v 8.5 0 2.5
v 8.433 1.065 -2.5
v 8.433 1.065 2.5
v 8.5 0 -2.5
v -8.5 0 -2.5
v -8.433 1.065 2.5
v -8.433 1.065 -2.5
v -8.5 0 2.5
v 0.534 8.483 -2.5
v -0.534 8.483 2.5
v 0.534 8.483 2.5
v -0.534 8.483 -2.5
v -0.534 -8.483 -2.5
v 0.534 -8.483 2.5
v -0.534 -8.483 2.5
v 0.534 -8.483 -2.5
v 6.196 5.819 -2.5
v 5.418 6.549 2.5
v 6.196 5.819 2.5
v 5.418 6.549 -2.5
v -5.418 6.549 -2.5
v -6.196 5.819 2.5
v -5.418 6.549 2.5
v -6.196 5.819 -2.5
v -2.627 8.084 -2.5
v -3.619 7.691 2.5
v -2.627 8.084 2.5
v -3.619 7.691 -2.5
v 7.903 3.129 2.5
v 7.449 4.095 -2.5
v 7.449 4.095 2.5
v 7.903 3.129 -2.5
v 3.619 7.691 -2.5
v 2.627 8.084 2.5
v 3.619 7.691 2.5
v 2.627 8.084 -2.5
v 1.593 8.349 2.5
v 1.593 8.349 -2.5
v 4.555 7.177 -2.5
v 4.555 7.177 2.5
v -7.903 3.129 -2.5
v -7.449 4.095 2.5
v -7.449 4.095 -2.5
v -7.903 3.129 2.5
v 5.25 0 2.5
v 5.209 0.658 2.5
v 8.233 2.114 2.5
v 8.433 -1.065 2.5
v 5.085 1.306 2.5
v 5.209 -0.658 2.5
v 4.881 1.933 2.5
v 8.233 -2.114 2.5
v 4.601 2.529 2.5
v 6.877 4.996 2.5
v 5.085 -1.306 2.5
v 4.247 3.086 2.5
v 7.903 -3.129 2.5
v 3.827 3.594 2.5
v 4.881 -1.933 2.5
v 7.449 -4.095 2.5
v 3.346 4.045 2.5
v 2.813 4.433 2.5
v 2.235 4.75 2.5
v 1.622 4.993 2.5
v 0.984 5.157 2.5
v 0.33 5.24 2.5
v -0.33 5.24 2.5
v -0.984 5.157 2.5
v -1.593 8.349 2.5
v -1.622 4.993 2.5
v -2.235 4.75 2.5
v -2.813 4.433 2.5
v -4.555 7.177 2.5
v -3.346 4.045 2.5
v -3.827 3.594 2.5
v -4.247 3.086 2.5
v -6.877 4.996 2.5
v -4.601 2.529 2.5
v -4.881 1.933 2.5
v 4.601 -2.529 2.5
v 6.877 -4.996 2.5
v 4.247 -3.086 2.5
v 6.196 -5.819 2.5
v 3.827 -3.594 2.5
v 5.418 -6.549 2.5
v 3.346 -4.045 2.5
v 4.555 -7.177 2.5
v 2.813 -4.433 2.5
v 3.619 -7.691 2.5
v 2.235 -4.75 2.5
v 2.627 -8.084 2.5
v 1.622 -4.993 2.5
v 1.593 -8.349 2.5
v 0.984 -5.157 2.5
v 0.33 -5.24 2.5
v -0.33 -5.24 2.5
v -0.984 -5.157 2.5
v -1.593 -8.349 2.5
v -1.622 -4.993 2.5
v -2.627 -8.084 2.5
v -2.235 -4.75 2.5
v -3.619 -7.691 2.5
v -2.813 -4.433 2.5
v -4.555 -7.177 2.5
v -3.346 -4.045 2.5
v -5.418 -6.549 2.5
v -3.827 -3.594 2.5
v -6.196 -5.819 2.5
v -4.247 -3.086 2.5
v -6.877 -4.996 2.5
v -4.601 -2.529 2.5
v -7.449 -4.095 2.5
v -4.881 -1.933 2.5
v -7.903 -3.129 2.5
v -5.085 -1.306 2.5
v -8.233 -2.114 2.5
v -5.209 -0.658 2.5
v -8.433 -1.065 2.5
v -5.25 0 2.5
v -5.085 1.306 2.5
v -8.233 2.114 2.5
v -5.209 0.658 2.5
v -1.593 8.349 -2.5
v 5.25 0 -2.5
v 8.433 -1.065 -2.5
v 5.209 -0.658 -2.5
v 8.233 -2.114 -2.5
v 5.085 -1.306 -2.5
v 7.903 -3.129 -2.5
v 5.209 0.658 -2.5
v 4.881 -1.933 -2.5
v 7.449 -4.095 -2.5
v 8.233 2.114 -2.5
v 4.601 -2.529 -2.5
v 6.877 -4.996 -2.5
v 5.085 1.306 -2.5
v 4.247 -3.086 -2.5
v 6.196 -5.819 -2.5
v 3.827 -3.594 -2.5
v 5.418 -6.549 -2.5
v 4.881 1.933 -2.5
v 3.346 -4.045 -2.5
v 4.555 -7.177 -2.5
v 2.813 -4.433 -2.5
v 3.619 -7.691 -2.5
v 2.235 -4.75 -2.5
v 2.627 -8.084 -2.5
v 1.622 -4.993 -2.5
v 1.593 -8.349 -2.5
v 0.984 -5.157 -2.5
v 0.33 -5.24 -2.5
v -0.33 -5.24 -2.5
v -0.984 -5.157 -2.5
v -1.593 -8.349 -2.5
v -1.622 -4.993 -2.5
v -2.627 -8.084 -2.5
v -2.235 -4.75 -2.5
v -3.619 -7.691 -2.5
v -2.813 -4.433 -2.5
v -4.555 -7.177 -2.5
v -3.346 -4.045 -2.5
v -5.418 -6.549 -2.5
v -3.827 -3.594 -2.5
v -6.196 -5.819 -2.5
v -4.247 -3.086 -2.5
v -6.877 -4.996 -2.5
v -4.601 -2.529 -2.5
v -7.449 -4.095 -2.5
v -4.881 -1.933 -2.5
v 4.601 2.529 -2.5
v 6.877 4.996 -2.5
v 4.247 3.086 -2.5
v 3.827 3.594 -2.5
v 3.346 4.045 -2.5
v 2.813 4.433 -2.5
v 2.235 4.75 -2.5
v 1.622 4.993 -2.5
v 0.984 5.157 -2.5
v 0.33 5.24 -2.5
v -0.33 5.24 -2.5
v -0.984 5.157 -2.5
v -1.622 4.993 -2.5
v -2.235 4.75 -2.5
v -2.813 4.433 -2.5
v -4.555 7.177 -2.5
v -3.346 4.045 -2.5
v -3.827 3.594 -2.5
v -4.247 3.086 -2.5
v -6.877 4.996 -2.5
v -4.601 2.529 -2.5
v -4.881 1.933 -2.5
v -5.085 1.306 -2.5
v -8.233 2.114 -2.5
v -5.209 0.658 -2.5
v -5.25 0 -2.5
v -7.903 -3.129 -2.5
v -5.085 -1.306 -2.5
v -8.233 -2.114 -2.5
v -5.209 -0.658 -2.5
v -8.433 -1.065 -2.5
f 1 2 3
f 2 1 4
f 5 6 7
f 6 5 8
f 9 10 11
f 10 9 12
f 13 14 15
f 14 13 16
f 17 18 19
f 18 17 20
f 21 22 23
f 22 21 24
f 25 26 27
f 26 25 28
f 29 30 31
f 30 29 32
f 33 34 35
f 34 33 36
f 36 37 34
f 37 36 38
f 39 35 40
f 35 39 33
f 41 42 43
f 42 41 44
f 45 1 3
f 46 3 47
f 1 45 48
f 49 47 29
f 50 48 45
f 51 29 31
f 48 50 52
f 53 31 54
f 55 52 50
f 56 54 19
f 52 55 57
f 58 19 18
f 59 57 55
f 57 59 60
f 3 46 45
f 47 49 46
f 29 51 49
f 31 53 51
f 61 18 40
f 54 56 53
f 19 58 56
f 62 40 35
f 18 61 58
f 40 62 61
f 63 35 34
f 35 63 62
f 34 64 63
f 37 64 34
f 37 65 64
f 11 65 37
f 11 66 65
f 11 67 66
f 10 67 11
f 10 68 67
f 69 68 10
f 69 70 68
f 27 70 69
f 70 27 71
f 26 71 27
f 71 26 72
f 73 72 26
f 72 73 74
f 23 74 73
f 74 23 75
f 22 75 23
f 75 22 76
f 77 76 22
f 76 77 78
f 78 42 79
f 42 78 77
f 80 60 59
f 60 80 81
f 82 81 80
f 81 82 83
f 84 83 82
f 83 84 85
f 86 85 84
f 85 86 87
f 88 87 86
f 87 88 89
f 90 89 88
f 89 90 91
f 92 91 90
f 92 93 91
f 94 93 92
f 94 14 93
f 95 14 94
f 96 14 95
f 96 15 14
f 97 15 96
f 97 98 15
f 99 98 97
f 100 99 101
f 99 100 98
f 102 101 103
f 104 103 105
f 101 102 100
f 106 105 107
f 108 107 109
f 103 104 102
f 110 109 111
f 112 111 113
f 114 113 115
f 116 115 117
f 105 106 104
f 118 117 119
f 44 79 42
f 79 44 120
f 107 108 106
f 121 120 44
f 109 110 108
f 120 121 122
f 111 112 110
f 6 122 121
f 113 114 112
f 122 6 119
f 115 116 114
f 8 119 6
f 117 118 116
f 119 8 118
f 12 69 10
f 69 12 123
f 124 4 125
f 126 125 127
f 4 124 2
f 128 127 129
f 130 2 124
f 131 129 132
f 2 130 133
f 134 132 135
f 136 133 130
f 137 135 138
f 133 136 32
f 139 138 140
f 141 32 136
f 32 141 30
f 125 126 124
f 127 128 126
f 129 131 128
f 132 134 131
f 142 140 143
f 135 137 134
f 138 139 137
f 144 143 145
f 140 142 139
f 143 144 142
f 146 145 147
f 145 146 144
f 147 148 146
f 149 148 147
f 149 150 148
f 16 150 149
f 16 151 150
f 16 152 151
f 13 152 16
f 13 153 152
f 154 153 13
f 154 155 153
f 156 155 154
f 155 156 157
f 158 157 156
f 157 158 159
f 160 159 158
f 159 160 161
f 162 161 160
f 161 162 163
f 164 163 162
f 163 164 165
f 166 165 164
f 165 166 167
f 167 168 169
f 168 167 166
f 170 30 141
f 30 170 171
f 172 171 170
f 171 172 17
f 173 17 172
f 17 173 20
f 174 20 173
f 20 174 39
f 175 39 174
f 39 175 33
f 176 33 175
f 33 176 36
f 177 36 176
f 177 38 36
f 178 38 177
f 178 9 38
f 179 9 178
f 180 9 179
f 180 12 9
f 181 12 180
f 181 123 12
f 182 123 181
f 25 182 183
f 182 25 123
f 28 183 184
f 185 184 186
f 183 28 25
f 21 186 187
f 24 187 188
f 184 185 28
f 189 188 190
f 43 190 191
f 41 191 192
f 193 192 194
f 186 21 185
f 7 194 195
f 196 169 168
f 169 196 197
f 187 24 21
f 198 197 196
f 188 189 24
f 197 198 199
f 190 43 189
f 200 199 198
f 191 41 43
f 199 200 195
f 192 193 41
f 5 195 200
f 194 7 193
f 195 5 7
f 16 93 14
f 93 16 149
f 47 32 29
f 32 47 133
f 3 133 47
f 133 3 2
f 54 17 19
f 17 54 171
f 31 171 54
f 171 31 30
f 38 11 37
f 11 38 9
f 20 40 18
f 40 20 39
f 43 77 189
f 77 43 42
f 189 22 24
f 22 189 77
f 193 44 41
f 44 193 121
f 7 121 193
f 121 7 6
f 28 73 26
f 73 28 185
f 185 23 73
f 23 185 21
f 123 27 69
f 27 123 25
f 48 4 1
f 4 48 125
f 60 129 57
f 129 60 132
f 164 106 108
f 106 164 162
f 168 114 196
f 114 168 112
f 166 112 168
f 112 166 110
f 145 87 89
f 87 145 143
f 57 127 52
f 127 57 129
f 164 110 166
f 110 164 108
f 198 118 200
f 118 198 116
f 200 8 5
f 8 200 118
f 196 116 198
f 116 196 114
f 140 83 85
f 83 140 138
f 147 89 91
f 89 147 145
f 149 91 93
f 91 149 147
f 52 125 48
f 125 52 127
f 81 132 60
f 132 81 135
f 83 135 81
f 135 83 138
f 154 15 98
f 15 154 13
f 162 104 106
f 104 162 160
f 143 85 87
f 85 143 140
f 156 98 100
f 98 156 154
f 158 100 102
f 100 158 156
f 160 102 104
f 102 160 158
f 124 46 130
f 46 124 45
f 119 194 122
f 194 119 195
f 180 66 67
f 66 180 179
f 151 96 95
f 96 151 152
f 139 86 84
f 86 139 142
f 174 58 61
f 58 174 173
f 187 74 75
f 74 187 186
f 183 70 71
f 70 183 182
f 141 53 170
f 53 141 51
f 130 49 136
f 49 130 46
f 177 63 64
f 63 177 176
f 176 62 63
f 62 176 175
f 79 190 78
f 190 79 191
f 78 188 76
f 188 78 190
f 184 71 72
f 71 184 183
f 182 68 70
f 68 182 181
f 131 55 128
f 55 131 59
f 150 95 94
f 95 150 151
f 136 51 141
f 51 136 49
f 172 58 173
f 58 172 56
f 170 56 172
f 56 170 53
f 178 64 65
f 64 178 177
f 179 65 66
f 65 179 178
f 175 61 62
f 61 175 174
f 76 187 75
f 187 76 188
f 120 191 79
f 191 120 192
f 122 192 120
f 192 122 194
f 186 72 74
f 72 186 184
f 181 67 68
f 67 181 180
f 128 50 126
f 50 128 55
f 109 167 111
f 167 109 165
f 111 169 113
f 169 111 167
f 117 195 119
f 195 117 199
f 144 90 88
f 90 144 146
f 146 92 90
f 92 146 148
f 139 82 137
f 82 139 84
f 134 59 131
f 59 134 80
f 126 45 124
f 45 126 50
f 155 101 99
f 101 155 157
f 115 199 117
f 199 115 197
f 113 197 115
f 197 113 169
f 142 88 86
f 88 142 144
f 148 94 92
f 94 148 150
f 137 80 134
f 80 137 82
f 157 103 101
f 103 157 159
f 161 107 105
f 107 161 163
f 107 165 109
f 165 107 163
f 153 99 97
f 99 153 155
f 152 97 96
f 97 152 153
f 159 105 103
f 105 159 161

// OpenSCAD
$fn = 50;


difference() {
	union() {
		translate(v = [0, 0, -2.5000000000]) {
			cylinder(h = 5, r = 8.5000000000);
		}
	}
	union() {
		translate(v = [0, 0, -100.0000000000]) {
			cylinder(h = 200, r = 5.2500000000);
		}
	}
}
